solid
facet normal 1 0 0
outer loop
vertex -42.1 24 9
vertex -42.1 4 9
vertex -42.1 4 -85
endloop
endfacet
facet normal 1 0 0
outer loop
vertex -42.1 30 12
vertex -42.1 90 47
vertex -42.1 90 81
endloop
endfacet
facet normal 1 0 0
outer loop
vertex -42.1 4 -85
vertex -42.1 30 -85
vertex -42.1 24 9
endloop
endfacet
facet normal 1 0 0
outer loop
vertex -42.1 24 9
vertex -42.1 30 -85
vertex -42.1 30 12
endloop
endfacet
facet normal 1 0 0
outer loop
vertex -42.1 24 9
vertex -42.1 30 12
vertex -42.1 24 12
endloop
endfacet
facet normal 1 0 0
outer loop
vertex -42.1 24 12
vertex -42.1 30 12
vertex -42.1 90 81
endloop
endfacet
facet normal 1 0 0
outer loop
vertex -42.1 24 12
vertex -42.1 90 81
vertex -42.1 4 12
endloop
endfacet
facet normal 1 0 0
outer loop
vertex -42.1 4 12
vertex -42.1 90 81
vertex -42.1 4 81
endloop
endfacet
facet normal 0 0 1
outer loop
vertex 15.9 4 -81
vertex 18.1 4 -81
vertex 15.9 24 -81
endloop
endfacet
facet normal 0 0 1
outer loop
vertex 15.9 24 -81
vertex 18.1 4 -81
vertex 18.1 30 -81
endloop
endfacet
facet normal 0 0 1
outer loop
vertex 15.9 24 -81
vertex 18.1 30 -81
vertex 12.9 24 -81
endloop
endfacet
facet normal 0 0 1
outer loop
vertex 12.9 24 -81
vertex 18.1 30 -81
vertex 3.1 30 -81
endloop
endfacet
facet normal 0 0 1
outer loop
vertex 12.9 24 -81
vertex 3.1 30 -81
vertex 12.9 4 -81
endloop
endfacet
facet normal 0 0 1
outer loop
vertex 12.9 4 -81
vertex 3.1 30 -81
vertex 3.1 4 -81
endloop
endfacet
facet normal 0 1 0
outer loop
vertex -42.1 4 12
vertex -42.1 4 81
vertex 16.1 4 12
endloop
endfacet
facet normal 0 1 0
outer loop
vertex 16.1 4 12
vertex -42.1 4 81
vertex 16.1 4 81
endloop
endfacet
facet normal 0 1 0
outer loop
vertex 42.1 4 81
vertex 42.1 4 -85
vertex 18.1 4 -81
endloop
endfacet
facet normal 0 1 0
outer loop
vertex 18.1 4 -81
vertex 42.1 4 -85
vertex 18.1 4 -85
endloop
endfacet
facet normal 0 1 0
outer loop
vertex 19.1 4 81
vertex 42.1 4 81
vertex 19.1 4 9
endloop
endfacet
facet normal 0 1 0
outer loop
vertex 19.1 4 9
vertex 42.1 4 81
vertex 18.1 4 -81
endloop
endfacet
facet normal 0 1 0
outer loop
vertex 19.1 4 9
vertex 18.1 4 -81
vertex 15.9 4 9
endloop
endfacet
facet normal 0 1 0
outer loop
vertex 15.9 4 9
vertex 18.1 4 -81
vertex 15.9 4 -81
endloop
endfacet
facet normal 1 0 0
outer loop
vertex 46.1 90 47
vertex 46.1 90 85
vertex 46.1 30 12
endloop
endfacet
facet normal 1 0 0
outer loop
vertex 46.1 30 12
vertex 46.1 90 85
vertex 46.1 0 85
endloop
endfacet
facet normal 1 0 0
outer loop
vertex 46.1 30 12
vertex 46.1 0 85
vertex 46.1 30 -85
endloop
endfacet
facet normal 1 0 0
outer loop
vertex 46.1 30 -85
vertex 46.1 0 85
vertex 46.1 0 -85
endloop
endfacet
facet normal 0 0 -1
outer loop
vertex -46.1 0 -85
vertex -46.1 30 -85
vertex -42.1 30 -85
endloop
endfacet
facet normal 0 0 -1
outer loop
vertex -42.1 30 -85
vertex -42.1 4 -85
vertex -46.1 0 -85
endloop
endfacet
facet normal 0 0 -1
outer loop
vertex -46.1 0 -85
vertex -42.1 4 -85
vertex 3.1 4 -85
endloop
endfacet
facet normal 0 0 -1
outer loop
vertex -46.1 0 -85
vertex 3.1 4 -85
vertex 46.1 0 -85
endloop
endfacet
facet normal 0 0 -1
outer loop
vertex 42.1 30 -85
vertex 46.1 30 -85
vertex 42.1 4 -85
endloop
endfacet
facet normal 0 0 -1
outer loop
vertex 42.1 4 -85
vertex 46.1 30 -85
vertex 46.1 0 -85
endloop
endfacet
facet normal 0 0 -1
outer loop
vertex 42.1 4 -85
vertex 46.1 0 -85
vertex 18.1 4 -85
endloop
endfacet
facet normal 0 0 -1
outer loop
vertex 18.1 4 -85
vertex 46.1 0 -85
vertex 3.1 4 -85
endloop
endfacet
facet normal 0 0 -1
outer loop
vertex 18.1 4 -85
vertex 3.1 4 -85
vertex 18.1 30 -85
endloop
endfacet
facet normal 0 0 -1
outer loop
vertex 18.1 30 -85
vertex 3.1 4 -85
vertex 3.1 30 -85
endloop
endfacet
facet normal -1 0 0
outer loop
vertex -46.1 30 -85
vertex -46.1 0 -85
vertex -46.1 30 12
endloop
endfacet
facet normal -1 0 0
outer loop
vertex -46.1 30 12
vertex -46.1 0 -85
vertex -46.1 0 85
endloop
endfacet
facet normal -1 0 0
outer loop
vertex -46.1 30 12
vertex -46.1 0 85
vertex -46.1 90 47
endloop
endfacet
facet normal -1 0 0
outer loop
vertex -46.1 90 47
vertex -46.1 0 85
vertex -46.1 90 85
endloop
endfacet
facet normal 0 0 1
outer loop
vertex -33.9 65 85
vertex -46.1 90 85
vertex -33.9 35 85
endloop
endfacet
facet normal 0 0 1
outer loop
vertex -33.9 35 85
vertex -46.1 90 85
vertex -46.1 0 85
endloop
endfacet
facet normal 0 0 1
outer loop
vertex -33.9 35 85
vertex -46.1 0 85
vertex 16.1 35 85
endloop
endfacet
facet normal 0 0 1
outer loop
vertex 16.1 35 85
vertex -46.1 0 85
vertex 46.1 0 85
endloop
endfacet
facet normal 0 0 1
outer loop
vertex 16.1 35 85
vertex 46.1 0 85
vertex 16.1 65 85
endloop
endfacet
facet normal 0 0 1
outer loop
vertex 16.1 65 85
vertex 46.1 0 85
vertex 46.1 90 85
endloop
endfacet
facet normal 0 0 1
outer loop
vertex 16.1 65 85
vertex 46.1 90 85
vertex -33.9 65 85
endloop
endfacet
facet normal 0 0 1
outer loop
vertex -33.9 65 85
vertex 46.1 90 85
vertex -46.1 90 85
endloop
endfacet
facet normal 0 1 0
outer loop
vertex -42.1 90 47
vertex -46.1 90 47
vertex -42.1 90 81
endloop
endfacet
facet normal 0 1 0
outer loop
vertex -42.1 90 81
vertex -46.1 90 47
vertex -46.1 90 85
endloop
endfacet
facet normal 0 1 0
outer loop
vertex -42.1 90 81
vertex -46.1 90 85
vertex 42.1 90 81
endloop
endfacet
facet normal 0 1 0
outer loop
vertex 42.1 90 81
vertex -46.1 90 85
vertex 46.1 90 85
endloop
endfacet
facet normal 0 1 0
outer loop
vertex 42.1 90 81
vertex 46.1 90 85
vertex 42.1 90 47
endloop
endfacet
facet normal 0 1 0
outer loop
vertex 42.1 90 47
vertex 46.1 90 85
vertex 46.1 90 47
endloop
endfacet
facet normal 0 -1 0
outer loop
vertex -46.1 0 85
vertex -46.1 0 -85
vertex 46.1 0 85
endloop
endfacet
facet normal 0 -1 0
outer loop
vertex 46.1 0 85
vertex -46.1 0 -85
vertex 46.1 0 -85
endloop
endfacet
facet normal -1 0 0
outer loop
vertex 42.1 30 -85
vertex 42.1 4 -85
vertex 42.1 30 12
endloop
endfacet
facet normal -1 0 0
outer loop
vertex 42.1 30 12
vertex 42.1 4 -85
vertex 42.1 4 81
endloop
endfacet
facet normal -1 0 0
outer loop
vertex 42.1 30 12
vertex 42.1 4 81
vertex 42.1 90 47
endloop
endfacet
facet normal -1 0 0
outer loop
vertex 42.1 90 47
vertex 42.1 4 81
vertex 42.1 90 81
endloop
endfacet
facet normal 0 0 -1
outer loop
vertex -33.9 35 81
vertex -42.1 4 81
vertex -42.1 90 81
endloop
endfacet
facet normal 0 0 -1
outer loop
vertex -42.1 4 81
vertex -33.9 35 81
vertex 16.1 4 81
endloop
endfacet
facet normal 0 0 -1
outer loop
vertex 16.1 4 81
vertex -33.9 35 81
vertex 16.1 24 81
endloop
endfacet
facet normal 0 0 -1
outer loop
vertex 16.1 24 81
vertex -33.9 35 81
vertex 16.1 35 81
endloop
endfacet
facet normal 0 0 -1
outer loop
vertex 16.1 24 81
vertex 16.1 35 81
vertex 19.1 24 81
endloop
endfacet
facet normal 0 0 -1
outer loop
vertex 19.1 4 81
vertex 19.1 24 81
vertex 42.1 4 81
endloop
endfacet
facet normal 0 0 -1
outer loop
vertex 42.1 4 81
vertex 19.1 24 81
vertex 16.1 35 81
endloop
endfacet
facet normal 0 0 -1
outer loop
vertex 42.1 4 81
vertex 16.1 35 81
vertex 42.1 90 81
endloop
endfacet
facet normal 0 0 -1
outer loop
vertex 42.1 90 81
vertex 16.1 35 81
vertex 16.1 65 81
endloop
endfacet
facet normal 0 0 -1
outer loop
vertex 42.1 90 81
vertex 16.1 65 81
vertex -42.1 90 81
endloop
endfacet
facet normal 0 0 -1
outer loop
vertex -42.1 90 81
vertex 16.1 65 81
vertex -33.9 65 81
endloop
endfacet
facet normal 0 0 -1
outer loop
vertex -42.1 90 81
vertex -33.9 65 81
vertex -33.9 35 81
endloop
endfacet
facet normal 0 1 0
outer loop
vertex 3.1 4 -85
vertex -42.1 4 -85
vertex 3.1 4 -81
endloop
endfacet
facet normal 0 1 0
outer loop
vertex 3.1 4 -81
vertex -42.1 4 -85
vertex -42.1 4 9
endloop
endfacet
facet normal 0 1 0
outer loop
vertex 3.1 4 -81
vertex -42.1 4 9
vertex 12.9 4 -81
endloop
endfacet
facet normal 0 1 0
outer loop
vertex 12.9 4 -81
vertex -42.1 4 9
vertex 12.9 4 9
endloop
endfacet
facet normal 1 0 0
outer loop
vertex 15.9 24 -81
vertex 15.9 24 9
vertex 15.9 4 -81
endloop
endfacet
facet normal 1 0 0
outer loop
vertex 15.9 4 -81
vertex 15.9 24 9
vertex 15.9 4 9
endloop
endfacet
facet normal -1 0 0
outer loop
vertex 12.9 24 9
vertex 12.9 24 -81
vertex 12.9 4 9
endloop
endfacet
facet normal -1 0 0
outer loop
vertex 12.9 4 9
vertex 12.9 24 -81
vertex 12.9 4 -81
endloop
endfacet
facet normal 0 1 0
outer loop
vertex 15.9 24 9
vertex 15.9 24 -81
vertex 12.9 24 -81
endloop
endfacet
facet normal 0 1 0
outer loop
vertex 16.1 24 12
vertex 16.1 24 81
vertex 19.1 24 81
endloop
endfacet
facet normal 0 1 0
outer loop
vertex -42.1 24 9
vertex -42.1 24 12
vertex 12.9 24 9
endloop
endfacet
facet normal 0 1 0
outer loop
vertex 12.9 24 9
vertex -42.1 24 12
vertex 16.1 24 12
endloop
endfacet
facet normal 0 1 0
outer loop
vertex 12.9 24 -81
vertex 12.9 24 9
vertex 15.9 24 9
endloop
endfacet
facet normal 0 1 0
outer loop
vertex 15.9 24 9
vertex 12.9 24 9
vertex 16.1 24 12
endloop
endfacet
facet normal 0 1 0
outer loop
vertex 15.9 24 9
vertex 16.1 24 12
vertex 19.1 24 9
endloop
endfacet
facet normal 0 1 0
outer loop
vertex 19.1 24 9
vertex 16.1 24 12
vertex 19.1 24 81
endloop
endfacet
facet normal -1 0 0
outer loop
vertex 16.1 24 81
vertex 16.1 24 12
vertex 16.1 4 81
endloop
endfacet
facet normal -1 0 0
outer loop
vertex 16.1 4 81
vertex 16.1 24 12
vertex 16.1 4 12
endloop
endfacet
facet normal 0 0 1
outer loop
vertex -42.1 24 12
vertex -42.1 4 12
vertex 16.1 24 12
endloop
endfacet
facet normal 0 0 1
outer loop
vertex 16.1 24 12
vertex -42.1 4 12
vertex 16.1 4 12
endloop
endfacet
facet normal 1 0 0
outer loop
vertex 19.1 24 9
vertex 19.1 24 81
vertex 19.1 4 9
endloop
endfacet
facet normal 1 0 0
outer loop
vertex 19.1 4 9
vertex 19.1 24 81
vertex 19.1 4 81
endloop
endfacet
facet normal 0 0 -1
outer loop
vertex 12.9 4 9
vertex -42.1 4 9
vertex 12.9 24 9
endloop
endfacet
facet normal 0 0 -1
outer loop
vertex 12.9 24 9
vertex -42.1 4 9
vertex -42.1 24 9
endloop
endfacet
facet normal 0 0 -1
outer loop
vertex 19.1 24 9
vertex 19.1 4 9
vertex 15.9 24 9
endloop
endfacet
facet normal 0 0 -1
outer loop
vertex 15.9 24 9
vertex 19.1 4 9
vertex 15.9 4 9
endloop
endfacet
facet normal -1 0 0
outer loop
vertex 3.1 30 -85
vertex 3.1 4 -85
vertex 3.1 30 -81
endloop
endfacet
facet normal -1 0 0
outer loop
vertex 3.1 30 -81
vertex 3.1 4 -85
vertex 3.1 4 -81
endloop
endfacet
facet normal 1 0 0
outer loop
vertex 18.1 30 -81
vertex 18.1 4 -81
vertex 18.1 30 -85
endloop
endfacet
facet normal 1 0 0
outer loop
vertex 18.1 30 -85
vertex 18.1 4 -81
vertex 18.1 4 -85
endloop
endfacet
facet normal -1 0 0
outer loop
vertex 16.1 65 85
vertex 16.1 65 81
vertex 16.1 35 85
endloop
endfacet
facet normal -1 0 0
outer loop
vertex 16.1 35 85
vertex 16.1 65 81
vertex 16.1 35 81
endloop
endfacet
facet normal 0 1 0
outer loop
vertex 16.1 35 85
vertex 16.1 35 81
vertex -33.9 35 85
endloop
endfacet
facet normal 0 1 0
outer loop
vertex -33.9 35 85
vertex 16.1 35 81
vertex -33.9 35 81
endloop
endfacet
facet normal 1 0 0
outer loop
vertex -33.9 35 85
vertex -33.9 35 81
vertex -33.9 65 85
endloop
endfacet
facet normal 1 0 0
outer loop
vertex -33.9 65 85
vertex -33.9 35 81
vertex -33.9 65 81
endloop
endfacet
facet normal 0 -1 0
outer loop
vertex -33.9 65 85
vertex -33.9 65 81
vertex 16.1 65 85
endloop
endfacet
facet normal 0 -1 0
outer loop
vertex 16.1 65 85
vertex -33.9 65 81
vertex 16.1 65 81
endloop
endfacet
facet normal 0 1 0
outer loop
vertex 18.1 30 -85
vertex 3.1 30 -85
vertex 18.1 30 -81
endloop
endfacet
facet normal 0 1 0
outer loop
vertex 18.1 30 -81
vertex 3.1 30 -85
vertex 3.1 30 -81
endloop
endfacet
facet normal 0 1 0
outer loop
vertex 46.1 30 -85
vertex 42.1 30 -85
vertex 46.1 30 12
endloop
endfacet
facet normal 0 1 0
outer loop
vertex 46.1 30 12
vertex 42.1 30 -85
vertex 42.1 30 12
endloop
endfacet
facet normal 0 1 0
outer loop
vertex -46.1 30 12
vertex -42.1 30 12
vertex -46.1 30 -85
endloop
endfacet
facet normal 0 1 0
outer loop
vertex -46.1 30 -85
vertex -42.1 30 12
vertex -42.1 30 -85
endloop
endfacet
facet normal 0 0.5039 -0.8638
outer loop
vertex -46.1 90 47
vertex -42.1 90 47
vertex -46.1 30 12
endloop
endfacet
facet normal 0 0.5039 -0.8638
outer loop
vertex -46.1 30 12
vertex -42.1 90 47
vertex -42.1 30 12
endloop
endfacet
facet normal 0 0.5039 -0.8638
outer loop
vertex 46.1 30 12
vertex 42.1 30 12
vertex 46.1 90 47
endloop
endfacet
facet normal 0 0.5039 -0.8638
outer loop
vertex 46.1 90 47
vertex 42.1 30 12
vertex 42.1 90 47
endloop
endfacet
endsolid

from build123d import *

# Parameters (mm, degrees)
SKETCH1_W           = 92.2
SKETCH1_H           = 170
BOX_DEPTH           = 90
SKETCH2_W           = 84.2
SKETCH2_H           = 162
BOX_CUT_DEPTH       = 86
BOSS_EXTRUDE2_DEPTH = 20
SKETCH4_W           = 24
SKETCH4_H           = 82
SKETCH4_W_2         = 45.2
SKETCH4_H_2         = 30
CUT_EXTRUDE2_DEPTH  = 4
SKETCH5_W           = 40
SKETCH5_H           = 20
CUT_EXTRUDE3_DEPTH  = 104
SKETCH6_W           = 50
SKETCH6_H           = 30
CUT_EXTRUDE4_DEPTH  = 14
SKETCH7_W           = 92.2
SKETCH7_H           = 97
CUT_EXTRUDE5_DEPTH  = 60
CUT_EXTRUDE6_DEPTH  = 100


with BuildPart() as part:
    # Sketch1 → Box (new body)
    with BuildSketch(Plane(origin=(0, 0, 0), x_dir=(1, 0, 0), z_dir=(0, 1, 0))):
        Rectangle(SKETCH1_W, SKETCH1_H)
    extrude(amount=BOX_DEPTH)

    # Sketch2 → Box Cut (cut)
    with BuildSketch(Plane(origin=(0, 90, 0), x_dir=(1, 0, 0), z_dir=(0, 1, 0))):
        Rectangle(SKETCH2_W, SKETCH2_H)
    extrude(amount=-BOX_CUT_DEPTH, mode=Mode.SUBTRACT)

    # Inside Walls → Boss-Extrude2 (add)
    with BuildSketch(Plane(origin=(0, 4, 0), x_dir=(1, 0, 0), z_dir=(0, 1, 0))):
        Polygon((-42.1, -9), (-42.1, -12), (16.1, -12), (16.1, -81), (19.1, -81), (19.1, -9), (15.9, -9), (15.9, 81), (12.9, 81), (12.9, -9), align=None)
    extrude(amount=BOSS_EXTRUDE2_DEPTH)

    # Sketch4 → Cut-Extrude2 (cut)
    with BuildSketch(Plane(origin=(0, 0, -85), x_dir=(-1, 0, 0), z_dir=(0, 0, -1))):
        with Locations((-30.1, 45)):
            Rectangle(SKETCH4_W, SKETCH4_H)
        with Locations((19.5, 19)):
            Rectangle(SKETCH4_W_2, SKETCH4_H_2)
    extrude(amount=-CUT_EXTRUDE2_DEPTH, mode=Mode.SUBTRACT)

    # Sketch5 → Cut-Extrude3 (cut)
    with BuildSketch(Plane.ZY.offset(46.1)):
        with Locations((-49.995549612, 50)):
            Rectangle(SKETCH5_W, SKETCH5_H)
    extrude(amount=-CUT_EXTRUDE3_DEPTH, mode=Mode.SUBTRACT)

    # Sketch6 → Cut-Extrude4 (cut)
    with BuildSketch(Plane.XY.offset(85)):
        with Locations((-8.9, 50)):
            Rectangle(SKETCH6_W, SKETCH6_H)
    extrude(amount=-CUT_EXTRUDE4_DEPTH, mode=Mode.SUBTRACT)

    # Sketch7 → Cut-Extrude5 (cut)
    with BuildSketch(Plane(origin=(0, 90, 0), x_dir=(1, 0, 0), z_dir=(0, 1, 0))):
        with Locations((0, 36.5)):
            Rectangle(SKETCH7_W, SKETCH7_H)
    extrude(amount=-CUT_EXTRUDE5_DEPTH, mode=Mode.SUBTRACT)

    # Sketch8 → Cut-Extrude6 (cut)
    with BuildSketch(Plane(origin=(46.1, 0, 0), x_dir=(0, 0, -1), z_dir=(1, 0, 0))):
        Polygon((-12, 30), (-47, 90), (-12, 90), align=None)
    extrude(amount=-CUT_EXTRUDE6_DEPTH, mode=Mode.SUBTRACT)


solid = part.part
